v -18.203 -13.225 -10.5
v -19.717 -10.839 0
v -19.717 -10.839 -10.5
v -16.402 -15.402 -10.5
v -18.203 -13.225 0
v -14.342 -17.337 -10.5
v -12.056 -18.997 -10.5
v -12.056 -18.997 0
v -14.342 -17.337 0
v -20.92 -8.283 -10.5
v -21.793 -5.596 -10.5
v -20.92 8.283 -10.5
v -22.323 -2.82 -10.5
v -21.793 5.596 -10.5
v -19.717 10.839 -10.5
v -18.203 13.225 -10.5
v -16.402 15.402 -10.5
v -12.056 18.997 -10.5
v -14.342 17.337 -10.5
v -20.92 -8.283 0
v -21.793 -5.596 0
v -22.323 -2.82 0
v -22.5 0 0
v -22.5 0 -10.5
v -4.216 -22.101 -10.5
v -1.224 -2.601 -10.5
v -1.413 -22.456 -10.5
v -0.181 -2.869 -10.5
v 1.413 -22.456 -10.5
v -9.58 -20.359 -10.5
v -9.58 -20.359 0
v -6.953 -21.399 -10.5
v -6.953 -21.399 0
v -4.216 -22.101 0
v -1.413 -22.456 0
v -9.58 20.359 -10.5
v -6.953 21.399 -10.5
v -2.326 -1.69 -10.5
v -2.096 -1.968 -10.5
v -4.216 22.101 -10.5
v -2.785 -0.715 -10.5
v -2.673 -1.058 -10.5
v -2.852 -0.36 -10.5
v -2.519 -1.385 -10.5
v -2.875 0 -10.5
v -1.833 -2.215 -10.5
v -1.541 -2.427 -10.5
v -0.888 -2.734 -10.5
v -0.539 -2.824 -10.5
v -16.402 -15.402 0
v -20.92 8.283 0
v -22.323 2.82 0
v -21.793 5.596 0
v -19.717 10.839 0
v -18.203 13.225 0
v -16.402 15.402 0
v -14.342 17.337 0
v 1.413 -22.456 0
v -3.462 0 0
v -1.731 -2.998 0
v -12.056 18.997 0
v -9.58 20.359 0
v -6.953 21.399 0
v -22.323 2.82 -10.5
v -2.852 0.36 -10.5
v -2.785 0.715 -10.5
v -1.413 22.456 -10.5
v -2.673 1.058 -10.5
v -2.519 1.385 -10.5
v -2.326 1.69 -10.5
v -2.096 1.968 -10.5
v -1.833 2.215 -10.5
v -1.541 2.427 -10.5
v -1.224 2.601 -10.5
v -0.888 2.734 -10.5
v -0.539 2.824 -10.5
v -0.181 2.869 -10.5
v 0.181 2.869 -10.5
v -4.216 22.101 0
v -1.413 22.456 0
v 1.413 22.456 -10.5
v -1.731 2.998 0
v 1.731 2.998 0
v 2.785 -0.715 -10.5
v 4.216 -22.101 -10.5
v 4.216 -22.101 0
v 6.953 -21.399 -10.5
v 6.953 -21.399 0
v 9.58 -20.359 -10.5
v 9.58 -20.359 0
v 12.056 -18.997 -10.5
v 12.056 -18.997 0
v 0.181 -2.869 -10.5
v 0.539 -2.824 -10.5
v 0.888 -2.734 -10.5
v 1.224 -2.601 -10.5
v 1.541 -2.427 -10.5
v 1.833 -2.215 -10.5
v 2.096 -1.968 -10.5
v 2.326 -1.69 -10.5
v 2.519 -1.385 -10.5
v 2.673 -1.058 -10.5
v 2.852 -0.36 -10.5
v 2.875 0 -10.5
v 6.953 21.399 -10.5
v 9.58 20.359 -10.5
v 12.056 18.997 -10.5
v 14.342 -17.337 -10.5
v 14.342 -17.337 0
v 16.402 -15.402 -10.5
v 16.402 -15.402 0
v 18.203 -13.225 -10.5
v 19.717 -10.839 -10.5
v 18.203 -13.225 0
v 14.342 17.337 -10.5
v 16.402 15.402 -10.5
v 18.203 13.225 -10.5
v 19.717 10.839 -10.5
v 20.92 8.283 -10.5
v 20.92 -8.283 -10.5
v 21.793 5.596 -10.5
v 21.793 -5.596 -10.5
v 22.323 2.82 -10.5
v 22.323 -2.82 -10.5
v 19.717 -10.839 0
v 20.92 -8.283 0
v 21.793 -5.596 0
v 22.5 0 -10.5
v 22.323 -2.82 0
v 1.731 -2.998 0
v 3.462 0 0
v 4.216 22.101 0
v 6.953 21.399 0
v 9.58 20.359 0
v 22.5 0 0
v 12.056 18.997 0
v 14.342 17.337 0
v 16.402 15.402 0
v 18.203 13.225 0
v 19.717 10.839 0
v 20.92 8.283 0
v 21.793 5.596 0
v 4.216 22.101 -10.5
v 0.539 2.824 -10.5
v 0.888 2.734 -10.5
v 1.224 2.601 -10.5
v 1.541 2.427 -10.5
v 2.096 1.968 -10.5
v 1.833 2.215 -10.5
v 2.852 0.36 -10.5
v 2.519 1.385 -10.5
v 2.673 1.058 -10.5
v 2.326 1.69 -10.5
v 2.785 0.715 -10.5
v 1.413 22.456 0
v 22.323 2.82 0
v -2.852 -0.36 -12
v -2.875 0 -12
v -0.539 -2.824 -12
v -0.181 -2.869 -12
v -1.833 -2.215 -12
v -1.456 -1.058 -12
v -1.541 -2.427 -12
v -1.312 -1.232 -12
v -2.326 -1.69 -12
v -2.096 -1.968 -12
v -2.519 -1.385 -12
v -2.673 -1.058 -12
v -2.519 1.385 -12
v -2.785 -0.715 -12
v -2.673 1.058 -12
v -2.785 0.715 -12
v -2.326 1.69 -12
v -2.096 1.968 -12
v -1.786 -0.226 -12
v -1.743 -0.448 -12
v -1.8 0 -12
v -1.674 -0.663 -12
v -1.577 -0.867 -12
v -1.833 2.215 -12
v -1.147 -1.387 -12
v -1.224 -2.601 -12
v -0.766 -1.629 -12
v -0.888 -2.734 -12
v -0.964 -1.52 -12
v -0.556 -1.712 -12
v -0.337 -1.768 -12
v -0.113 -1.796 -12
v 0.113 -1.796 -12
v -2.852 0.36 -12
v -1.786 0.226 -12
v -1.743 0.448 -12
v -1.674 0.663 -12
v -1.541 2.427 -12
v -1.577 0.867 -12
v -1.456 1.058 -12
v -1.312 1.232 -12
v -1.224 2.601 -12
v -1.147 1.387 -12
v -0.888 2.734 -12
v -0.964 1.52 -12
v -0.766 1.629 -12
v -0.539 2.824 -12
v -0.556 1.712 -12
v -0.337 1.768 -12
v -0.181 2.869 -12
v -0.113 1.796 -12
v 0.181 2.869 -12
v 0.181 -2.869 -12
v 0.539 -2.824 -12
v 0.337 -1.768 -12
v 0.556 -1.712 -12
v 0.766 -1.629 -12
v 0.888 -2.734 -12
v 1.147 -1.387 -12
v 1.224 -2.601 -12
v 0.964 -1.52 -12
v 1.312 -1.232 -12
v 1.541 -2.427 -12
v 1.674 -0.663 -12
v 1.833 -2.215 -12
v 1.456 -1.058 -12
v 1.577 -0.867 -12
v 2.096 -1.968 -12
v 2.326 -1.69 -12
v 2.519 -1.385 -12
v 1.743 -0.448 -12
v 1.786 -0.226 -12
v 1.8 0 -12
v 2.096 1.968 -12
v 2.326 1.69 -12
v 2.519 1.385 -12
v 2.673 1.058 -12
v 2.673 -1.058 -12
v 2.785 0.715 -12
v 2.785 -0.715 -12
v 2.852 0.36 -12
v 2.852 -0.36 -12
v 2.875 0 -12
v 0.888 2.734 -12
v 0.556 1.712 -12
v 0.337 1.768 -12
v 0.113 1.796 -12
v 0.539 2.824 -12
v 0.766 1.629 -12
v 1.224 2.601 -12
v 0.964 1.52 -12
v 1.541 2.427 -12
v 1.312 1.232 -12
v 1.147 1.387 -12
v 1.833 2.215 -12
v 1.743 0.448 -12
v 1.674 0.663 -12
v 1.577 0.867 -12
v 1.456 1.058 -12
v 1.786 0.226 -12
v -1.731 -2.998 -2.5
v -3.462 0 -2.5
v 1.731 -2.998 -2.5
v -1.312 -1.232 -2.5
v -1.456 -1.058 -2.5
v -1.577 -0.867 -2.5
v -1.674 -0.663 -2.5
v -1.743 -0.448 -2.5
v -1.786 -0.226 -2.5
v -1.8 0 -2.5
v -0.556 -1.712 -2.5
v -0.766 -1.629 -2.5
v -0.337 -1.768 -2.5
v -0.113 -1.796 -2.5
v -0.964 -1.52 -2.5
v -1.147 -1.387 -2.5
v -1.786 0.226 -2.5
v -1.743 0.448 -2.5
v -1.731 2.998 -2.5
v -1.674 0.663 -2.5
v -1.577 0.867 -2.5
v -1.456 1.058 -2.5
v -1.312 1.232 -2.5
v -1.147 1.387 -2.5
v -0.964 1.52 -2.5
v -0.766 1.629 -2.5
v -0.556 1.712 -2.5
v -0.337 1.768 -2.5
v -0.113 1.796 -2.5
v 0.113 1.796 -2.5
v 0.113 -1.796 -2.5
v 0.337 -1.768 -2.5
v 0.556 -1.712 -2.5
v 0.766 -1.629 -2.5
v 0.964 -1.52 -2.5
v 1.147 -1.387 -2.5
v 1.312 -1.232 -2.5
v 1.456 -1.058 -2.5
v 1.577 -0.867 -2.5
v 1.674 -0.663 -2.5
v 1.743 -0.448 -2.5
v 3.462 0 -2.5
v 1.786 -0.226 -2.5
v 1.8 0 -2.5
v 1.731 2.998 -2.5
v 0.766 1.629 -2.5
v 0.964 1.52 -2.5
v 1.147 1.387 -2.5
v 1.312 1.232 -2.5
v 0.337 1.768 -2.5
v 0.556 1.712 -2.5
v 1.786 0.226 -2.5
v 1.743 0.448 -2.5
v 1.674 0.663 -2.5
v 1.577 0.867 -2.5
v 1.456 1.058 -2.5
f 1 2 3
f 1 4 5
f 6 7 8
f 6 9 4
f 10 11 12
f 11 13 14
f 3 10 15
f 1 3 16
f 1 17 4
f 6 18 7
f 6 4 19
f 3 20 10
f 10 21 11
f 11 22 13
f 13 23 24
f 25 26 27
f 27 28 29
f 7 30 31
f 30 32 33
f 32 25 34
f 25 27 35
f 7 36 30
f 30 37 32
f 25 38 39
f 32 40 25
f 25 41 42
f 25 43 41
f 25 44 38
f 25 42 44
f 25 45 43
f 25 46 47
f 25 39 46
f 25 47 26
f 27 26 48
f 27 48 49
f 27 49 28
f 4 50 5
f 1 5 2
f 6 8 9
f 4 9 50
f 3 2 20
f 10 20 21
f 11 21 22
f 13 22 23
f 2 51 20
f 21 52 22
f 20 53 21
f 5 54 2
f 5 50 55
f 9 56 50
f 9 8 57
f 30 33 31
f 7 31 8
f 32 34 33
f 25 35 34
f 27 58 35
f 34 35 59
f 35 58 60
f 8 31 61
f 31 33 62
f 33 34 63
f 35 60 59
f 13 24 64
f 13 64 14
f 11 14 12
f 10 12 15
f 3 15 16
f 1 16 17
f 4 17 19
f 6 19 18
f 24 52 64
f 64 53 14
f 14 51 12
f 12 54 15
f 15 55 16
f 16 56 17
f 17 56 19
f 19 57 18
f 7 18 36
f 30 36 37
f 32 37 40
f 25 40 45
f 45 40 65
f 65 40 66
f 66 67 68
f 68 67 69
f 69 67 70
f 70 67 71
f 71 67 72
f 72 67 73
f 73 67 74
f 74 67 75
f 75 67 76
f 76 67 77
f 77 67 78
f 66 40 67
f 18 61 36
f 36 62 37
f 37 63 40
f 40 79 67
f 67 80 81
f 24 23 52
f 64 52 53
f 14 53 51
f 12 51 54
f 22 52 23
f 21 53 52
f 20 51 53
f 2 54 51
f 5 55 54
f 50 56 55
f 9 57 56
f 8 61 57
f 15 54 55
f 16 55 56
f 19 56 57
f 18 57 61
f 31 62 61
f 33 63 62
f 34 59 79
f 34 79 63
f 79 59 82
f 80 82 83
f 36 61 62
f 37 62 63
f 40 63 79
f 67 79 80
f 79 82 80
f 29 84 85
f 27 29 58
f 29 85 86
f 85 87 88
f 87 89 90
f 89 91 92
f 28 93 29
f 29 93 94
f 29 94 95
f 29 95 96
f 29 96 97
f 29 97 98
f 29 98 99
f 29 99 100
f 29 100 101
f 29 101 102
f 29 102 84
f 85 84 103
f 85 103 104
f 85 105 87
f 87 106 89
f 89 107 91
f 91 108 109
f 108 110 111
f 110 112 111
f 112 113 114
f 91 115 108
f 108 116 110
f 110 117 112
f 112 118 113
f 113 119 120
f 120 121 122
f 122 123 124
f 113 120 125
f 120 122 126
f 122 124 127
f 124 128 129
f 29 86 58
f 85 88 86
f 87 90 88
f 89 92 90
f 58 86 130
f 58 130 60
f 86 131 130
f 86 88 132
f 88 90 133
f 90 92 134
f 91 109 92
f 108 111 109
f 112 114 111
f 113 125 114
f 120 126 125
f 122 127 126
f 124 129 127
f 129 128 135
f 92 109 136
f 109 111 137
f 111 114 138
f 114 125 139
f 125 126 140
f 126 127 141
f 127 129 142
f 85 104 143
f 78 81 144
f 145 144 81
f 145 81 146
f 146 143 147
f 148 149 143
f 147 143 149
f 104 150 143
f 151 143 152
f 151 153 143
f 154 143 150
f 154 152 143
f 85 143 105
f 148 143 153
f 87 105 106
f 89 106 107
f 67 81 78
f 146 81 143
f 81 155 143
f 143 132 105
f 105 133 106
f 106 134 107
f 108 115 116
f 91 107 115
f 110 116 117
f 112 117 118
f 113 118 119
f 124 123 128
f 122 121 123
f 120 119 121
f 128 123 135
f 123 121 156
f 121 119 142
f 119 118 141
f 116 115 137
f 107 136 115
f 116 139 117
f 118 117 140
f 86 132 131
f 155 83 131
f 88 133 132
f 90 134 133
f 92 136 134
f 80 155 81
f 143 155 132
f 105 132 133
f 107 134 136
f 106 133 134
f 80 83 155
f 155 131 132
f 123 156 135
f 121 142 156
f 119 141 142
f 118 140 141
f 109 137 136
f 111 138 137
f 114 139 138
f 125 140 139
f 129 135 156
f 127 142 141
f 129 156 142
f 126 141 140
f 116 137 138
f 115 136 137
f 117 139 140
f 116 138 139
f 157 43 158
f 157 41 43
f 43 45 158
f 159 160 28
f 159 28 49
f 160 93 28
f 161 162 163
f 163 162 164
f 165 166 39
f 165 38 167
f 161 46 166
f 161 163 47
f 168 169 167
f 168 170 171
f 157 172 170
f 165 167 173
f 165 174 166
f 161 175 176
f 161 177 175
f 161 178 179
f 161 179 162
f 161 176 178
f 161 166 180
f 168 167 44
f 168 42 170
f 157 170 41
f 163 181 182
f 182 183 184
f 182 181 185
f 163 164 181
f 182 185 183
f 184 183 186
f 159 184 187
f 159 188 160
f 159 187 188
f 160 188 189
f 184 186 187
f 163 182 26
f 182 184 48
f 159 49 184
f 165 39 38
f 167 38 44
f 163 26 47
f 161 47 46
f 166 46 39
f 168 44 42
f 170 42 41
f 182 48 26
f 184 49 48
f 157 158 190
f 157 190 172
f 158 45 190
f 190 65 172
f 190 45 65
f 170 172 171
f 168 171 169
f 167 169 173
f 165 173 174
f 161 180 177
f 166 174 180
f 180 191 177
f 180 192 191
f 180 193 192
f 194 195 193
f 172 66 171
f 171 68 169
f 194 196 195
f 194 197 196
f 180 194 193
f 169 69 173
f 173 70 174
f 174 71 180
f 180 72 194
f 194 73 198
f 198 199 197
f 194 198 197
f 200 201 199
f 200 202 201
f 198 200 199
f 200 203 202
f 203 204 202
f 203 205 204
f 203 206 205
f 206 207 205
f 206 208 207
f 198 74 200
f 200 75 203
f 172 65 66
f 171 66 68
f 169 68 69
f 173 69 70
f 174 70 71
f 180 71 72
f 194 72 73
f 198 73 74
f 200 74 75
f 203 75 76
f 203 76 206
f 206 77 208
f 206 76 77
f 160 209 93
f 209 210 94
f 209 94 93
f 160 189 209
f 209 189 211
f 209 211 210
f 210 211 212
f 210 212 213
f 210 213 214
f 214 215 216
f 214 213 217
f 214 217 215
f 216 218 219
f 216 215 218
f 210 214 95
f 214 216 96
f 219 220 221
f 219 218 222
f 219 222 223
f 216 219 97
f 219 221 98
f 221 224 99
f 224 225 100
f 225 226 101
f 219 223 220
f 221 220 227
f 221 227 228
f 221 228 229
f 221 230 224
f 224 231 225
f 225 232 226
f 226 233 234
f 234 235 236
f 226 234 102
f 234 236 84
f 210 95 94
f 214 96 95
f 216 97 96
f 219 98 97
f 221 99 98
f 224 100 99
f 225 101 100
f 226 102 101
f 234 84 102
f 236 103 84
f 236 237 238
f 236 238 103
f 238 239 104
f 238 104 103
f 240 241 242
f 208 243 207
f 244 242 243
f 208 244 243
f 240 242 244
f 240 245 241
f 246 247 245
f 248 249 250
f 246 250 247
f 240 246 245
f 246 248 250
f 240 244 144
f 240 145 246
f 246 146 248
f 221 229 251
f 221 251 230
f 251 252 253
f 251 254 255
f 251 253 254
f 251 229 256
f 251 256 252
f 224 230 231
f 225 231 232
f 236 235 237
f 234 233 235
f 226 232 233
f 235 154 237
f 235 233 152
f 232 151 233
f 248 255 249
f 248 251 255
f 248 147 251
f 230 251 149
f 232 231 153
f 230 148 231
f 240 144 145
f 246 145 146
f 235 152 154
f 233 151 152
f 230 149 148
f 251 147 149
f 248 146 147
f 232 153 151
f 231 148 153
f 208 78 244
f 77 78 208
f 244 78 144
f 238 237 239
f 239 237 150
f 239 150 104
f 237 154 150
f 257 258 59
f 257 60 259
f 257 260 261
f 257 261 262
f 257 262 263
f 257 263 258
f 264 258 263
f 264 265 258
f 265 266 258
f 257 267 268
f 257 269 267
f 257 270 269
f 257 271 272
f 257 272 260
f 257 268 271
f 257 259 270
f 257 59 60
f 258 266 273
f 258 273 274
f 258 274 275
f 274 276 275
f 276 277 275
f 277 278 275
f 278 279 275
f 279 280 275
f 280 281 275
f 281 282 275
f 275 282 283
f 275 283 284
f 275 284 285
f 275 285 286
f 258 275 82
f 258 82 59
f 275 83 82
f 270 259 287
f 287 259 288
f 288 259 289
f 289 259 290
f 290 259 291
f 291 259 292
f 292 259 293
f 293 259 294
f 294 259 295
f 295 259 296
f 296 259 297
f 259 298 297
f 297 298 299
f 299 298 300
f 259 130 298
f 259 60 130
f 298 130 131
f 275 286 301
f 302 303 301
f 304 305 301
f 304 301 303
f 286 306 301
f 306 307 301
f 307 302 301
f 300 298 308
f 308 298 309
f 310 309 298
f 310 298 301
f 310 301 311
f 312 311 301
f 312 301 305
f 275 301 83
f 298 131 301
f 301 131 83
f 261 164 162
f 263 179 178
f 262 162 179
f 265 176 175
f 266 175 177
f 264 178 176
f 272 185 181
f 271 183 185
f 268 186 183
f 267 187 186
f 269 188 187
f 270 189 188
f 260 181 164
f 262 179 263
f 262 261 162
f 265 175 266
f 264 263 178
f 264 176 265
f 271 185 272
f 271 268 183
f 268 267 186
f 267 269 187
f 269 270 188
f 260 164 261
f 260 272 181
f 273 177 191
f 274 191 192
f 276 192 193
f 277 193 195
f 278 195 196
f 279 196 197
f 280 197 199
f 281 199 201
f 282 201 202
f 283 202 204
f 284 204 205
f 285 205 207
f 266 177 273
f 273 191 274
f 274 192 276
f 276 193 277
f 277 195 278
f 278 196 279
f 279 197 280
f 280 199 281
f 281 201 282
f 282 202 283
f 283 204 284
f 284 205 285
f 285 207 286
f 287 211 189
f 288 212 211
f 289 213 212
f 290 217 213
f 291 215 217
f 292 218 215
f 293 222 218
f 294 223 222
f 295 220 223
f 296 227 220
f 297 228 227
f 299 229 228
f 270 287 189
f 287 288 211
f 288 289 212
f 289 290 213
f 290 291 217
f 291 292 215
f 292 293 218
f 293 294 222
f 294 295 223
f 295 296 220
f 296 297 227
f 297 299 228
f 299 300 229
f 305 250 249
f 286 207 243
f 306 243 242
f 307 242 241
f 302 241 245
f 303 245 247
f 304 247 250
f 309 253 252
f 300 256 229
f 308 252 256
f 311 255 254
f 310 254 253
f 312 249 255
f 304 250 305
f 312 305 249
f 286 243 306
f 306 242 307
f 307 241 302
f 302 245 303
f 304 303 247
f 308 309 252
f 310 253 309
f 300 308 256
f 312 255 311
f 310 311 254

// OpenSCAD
$fn = 50;

difference() {
	union() {
		translate(v = [0, 0, -10.5]) {
			cylinder(h = 10.5, r = 22.5);
		}
		#translate(v = [0, 0, -12.0]) {
			cylinder(h = 12, r = 2.875);
		}
	}
	union() {
		translate(v = [0, 0, 0]) {
			rotate(a = [0, 0, 0]) {
				difference() {
					union() {
						translate(v = [0, 0, -2.5]) {
							linear_extrude(height = 2.5) {
								polygon(points = [[3.4619999999999997, 0.0], [1.7310000000000003, 2.9981799479017264], [-1.7309999999999992, 2.9981799479017264], [-3.4619999999999997, 4.2397272186481365e-16], [-1.7310000000000014, -2.998179947901726], [1.7309999999999977, -2.9981799479017277]]);
							}
						}
					}
					union();
				}
			}
		}
		#translate(v = [0, 0, -100.0]) {
			cylinder(h = 200, r = 1.8);
		}
	}
}
